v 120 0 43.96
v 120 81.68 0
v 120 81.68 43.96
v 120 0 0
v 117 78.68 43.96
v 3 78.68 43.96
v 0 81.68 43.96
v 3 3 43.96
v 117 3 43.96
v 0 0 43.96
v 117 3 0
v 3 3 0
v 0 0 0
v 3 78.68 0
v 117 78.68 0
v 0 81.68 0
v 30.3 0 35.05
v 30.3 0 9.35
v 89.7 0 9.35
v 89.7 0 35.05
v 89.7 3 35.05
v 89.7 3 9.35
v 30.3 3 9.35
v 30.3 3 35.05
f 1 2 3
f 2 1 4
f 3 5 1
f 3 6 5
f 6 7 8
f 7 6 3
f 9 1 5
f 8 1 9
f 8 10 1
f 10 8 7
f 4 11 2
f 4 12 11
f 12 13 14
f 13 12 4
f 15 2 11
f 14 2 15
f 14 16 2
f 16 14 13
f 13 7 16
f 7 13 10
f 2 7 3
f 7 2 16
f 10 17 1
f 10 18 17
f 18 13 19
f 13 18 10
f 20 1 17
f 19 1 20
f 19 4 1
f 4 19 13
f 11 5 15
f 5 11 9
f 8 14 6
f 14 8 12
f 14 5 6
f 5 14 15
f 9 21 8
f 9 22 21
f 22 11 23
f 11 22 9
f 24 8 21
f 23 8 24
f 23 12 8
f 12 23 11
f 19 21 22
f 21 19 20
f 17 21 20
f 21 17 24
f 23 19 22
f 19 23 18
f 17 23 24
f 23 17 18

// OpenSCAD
/* doodle-meta {"version":1,"parameters":{"width":{"label":"Overall width","description":"Changes the body width","unit":"mm","feature":"body_width"},"depth":{"label":"Overall depth","description":"Changes the body depth","unit":"mm","feature":"body_depth"},"height":{"label":"Overall height","description":"Changes the body height","unit":"mm","feature":"body_height"},"wall_thickness":{"label":"Wall thickness","description":"Changes the uniform wall thickness","unit":"mm","feature":"wall_thickness"},"window_width":{"label":"Window width","description":"Changes the width of the front window","unit":"mm","feature":"front_window"},"window_height":{"label":"Window height","description":"Changes the height of the front window","unit":"mm","feature":"front_window"},"window_center_z":{"label":"Window center height","description":"Changes the vertical position of the window center","unit":"mm","feature":"front_window"}},"features":{"body_width":{"kind":"dimension","axis":"x","label":"Overall width"},"body_depth":{"kind":"dimension","axis":"y","label":"Overall depth"},"body_height":{"kind":"dimension","axis":"z","label":"Overall height"},"wall_thickness":{"kind":"region","label":"Wall thickness","min":[0,0,0],"max":[{"parameter":"wall_thickness","scale":1,"offset":0},{"parameter":"wall_thickness","scale":1,"offset":0},{"parameter":"wall_thickness","scale":1,"offset":0}]},"front_window":{"kind":"region","label":"Front window","min":[{"parameter":"width","scale":0.5,"offset":-10},{"parameter":"depth","scale":0,"offset":0},{"parameter":"window_center_z","scale":1,"offset":-10}],"max":[{"parameter":"width","scale":0.5,"offset":10},{"parameter":"depth","scale":1,"offset":0},{"parameter":"window_center_z","scale":1,"offset":10}]}}} */

// Parameters
width = 120.0;
depth = 81.68;
height = 43.96;
wall_thickness = 3.0;

// Window parameters (derived from measured view geometry and intent)
// Front view: u=0.496 -> X center. v=0.4947 -> Z center.
// Window width ~ 0.495 * width = 59.4 mm
// Window height ~ 0.5848 * height = 25.7 mm
// Window center Z ~ (1 - 0.4947) * height = 22.2 mm
window_width = 59.4;
window_height = 25.7;
window_center_z = 22.2;

// Derived internal dimensions
inner_width = width - 2 * wall_thickness;
inner_depth = depth - 2 * wall_thickness;
inner_height = height; // Open top, so inner height goes up to top

// Epsilon for boolean operations
eps = 0.01;

// Main Body Construction
difference() {
    // 1. Outer Shell
    cube([width, depth, height], center=false);
    
    // 2. Inner Cavity (Open Top)
    // Positioned to leave walls on sides and back, open at top
    translate([wall_thickness, wall_thickness, -eps]) {
        cube([inner_width, inner_depth, height + eps], center=false);
    }
    
    // 3. Front Window Cutout
    // The window is on the front face (Y=0).
    // It cuts through the front wall (Y from 0 to wall_thickness).
    // Center X is width/2. Center Z is window_center_z.
    // Cutter must traverse the wall fully.
    translate([width/2 - window_width/2, -eps, window_center_z - window_height/2]) {
        cube([window_width, wall_thickness + 2*eps, window_height], center=false);
    }
}
